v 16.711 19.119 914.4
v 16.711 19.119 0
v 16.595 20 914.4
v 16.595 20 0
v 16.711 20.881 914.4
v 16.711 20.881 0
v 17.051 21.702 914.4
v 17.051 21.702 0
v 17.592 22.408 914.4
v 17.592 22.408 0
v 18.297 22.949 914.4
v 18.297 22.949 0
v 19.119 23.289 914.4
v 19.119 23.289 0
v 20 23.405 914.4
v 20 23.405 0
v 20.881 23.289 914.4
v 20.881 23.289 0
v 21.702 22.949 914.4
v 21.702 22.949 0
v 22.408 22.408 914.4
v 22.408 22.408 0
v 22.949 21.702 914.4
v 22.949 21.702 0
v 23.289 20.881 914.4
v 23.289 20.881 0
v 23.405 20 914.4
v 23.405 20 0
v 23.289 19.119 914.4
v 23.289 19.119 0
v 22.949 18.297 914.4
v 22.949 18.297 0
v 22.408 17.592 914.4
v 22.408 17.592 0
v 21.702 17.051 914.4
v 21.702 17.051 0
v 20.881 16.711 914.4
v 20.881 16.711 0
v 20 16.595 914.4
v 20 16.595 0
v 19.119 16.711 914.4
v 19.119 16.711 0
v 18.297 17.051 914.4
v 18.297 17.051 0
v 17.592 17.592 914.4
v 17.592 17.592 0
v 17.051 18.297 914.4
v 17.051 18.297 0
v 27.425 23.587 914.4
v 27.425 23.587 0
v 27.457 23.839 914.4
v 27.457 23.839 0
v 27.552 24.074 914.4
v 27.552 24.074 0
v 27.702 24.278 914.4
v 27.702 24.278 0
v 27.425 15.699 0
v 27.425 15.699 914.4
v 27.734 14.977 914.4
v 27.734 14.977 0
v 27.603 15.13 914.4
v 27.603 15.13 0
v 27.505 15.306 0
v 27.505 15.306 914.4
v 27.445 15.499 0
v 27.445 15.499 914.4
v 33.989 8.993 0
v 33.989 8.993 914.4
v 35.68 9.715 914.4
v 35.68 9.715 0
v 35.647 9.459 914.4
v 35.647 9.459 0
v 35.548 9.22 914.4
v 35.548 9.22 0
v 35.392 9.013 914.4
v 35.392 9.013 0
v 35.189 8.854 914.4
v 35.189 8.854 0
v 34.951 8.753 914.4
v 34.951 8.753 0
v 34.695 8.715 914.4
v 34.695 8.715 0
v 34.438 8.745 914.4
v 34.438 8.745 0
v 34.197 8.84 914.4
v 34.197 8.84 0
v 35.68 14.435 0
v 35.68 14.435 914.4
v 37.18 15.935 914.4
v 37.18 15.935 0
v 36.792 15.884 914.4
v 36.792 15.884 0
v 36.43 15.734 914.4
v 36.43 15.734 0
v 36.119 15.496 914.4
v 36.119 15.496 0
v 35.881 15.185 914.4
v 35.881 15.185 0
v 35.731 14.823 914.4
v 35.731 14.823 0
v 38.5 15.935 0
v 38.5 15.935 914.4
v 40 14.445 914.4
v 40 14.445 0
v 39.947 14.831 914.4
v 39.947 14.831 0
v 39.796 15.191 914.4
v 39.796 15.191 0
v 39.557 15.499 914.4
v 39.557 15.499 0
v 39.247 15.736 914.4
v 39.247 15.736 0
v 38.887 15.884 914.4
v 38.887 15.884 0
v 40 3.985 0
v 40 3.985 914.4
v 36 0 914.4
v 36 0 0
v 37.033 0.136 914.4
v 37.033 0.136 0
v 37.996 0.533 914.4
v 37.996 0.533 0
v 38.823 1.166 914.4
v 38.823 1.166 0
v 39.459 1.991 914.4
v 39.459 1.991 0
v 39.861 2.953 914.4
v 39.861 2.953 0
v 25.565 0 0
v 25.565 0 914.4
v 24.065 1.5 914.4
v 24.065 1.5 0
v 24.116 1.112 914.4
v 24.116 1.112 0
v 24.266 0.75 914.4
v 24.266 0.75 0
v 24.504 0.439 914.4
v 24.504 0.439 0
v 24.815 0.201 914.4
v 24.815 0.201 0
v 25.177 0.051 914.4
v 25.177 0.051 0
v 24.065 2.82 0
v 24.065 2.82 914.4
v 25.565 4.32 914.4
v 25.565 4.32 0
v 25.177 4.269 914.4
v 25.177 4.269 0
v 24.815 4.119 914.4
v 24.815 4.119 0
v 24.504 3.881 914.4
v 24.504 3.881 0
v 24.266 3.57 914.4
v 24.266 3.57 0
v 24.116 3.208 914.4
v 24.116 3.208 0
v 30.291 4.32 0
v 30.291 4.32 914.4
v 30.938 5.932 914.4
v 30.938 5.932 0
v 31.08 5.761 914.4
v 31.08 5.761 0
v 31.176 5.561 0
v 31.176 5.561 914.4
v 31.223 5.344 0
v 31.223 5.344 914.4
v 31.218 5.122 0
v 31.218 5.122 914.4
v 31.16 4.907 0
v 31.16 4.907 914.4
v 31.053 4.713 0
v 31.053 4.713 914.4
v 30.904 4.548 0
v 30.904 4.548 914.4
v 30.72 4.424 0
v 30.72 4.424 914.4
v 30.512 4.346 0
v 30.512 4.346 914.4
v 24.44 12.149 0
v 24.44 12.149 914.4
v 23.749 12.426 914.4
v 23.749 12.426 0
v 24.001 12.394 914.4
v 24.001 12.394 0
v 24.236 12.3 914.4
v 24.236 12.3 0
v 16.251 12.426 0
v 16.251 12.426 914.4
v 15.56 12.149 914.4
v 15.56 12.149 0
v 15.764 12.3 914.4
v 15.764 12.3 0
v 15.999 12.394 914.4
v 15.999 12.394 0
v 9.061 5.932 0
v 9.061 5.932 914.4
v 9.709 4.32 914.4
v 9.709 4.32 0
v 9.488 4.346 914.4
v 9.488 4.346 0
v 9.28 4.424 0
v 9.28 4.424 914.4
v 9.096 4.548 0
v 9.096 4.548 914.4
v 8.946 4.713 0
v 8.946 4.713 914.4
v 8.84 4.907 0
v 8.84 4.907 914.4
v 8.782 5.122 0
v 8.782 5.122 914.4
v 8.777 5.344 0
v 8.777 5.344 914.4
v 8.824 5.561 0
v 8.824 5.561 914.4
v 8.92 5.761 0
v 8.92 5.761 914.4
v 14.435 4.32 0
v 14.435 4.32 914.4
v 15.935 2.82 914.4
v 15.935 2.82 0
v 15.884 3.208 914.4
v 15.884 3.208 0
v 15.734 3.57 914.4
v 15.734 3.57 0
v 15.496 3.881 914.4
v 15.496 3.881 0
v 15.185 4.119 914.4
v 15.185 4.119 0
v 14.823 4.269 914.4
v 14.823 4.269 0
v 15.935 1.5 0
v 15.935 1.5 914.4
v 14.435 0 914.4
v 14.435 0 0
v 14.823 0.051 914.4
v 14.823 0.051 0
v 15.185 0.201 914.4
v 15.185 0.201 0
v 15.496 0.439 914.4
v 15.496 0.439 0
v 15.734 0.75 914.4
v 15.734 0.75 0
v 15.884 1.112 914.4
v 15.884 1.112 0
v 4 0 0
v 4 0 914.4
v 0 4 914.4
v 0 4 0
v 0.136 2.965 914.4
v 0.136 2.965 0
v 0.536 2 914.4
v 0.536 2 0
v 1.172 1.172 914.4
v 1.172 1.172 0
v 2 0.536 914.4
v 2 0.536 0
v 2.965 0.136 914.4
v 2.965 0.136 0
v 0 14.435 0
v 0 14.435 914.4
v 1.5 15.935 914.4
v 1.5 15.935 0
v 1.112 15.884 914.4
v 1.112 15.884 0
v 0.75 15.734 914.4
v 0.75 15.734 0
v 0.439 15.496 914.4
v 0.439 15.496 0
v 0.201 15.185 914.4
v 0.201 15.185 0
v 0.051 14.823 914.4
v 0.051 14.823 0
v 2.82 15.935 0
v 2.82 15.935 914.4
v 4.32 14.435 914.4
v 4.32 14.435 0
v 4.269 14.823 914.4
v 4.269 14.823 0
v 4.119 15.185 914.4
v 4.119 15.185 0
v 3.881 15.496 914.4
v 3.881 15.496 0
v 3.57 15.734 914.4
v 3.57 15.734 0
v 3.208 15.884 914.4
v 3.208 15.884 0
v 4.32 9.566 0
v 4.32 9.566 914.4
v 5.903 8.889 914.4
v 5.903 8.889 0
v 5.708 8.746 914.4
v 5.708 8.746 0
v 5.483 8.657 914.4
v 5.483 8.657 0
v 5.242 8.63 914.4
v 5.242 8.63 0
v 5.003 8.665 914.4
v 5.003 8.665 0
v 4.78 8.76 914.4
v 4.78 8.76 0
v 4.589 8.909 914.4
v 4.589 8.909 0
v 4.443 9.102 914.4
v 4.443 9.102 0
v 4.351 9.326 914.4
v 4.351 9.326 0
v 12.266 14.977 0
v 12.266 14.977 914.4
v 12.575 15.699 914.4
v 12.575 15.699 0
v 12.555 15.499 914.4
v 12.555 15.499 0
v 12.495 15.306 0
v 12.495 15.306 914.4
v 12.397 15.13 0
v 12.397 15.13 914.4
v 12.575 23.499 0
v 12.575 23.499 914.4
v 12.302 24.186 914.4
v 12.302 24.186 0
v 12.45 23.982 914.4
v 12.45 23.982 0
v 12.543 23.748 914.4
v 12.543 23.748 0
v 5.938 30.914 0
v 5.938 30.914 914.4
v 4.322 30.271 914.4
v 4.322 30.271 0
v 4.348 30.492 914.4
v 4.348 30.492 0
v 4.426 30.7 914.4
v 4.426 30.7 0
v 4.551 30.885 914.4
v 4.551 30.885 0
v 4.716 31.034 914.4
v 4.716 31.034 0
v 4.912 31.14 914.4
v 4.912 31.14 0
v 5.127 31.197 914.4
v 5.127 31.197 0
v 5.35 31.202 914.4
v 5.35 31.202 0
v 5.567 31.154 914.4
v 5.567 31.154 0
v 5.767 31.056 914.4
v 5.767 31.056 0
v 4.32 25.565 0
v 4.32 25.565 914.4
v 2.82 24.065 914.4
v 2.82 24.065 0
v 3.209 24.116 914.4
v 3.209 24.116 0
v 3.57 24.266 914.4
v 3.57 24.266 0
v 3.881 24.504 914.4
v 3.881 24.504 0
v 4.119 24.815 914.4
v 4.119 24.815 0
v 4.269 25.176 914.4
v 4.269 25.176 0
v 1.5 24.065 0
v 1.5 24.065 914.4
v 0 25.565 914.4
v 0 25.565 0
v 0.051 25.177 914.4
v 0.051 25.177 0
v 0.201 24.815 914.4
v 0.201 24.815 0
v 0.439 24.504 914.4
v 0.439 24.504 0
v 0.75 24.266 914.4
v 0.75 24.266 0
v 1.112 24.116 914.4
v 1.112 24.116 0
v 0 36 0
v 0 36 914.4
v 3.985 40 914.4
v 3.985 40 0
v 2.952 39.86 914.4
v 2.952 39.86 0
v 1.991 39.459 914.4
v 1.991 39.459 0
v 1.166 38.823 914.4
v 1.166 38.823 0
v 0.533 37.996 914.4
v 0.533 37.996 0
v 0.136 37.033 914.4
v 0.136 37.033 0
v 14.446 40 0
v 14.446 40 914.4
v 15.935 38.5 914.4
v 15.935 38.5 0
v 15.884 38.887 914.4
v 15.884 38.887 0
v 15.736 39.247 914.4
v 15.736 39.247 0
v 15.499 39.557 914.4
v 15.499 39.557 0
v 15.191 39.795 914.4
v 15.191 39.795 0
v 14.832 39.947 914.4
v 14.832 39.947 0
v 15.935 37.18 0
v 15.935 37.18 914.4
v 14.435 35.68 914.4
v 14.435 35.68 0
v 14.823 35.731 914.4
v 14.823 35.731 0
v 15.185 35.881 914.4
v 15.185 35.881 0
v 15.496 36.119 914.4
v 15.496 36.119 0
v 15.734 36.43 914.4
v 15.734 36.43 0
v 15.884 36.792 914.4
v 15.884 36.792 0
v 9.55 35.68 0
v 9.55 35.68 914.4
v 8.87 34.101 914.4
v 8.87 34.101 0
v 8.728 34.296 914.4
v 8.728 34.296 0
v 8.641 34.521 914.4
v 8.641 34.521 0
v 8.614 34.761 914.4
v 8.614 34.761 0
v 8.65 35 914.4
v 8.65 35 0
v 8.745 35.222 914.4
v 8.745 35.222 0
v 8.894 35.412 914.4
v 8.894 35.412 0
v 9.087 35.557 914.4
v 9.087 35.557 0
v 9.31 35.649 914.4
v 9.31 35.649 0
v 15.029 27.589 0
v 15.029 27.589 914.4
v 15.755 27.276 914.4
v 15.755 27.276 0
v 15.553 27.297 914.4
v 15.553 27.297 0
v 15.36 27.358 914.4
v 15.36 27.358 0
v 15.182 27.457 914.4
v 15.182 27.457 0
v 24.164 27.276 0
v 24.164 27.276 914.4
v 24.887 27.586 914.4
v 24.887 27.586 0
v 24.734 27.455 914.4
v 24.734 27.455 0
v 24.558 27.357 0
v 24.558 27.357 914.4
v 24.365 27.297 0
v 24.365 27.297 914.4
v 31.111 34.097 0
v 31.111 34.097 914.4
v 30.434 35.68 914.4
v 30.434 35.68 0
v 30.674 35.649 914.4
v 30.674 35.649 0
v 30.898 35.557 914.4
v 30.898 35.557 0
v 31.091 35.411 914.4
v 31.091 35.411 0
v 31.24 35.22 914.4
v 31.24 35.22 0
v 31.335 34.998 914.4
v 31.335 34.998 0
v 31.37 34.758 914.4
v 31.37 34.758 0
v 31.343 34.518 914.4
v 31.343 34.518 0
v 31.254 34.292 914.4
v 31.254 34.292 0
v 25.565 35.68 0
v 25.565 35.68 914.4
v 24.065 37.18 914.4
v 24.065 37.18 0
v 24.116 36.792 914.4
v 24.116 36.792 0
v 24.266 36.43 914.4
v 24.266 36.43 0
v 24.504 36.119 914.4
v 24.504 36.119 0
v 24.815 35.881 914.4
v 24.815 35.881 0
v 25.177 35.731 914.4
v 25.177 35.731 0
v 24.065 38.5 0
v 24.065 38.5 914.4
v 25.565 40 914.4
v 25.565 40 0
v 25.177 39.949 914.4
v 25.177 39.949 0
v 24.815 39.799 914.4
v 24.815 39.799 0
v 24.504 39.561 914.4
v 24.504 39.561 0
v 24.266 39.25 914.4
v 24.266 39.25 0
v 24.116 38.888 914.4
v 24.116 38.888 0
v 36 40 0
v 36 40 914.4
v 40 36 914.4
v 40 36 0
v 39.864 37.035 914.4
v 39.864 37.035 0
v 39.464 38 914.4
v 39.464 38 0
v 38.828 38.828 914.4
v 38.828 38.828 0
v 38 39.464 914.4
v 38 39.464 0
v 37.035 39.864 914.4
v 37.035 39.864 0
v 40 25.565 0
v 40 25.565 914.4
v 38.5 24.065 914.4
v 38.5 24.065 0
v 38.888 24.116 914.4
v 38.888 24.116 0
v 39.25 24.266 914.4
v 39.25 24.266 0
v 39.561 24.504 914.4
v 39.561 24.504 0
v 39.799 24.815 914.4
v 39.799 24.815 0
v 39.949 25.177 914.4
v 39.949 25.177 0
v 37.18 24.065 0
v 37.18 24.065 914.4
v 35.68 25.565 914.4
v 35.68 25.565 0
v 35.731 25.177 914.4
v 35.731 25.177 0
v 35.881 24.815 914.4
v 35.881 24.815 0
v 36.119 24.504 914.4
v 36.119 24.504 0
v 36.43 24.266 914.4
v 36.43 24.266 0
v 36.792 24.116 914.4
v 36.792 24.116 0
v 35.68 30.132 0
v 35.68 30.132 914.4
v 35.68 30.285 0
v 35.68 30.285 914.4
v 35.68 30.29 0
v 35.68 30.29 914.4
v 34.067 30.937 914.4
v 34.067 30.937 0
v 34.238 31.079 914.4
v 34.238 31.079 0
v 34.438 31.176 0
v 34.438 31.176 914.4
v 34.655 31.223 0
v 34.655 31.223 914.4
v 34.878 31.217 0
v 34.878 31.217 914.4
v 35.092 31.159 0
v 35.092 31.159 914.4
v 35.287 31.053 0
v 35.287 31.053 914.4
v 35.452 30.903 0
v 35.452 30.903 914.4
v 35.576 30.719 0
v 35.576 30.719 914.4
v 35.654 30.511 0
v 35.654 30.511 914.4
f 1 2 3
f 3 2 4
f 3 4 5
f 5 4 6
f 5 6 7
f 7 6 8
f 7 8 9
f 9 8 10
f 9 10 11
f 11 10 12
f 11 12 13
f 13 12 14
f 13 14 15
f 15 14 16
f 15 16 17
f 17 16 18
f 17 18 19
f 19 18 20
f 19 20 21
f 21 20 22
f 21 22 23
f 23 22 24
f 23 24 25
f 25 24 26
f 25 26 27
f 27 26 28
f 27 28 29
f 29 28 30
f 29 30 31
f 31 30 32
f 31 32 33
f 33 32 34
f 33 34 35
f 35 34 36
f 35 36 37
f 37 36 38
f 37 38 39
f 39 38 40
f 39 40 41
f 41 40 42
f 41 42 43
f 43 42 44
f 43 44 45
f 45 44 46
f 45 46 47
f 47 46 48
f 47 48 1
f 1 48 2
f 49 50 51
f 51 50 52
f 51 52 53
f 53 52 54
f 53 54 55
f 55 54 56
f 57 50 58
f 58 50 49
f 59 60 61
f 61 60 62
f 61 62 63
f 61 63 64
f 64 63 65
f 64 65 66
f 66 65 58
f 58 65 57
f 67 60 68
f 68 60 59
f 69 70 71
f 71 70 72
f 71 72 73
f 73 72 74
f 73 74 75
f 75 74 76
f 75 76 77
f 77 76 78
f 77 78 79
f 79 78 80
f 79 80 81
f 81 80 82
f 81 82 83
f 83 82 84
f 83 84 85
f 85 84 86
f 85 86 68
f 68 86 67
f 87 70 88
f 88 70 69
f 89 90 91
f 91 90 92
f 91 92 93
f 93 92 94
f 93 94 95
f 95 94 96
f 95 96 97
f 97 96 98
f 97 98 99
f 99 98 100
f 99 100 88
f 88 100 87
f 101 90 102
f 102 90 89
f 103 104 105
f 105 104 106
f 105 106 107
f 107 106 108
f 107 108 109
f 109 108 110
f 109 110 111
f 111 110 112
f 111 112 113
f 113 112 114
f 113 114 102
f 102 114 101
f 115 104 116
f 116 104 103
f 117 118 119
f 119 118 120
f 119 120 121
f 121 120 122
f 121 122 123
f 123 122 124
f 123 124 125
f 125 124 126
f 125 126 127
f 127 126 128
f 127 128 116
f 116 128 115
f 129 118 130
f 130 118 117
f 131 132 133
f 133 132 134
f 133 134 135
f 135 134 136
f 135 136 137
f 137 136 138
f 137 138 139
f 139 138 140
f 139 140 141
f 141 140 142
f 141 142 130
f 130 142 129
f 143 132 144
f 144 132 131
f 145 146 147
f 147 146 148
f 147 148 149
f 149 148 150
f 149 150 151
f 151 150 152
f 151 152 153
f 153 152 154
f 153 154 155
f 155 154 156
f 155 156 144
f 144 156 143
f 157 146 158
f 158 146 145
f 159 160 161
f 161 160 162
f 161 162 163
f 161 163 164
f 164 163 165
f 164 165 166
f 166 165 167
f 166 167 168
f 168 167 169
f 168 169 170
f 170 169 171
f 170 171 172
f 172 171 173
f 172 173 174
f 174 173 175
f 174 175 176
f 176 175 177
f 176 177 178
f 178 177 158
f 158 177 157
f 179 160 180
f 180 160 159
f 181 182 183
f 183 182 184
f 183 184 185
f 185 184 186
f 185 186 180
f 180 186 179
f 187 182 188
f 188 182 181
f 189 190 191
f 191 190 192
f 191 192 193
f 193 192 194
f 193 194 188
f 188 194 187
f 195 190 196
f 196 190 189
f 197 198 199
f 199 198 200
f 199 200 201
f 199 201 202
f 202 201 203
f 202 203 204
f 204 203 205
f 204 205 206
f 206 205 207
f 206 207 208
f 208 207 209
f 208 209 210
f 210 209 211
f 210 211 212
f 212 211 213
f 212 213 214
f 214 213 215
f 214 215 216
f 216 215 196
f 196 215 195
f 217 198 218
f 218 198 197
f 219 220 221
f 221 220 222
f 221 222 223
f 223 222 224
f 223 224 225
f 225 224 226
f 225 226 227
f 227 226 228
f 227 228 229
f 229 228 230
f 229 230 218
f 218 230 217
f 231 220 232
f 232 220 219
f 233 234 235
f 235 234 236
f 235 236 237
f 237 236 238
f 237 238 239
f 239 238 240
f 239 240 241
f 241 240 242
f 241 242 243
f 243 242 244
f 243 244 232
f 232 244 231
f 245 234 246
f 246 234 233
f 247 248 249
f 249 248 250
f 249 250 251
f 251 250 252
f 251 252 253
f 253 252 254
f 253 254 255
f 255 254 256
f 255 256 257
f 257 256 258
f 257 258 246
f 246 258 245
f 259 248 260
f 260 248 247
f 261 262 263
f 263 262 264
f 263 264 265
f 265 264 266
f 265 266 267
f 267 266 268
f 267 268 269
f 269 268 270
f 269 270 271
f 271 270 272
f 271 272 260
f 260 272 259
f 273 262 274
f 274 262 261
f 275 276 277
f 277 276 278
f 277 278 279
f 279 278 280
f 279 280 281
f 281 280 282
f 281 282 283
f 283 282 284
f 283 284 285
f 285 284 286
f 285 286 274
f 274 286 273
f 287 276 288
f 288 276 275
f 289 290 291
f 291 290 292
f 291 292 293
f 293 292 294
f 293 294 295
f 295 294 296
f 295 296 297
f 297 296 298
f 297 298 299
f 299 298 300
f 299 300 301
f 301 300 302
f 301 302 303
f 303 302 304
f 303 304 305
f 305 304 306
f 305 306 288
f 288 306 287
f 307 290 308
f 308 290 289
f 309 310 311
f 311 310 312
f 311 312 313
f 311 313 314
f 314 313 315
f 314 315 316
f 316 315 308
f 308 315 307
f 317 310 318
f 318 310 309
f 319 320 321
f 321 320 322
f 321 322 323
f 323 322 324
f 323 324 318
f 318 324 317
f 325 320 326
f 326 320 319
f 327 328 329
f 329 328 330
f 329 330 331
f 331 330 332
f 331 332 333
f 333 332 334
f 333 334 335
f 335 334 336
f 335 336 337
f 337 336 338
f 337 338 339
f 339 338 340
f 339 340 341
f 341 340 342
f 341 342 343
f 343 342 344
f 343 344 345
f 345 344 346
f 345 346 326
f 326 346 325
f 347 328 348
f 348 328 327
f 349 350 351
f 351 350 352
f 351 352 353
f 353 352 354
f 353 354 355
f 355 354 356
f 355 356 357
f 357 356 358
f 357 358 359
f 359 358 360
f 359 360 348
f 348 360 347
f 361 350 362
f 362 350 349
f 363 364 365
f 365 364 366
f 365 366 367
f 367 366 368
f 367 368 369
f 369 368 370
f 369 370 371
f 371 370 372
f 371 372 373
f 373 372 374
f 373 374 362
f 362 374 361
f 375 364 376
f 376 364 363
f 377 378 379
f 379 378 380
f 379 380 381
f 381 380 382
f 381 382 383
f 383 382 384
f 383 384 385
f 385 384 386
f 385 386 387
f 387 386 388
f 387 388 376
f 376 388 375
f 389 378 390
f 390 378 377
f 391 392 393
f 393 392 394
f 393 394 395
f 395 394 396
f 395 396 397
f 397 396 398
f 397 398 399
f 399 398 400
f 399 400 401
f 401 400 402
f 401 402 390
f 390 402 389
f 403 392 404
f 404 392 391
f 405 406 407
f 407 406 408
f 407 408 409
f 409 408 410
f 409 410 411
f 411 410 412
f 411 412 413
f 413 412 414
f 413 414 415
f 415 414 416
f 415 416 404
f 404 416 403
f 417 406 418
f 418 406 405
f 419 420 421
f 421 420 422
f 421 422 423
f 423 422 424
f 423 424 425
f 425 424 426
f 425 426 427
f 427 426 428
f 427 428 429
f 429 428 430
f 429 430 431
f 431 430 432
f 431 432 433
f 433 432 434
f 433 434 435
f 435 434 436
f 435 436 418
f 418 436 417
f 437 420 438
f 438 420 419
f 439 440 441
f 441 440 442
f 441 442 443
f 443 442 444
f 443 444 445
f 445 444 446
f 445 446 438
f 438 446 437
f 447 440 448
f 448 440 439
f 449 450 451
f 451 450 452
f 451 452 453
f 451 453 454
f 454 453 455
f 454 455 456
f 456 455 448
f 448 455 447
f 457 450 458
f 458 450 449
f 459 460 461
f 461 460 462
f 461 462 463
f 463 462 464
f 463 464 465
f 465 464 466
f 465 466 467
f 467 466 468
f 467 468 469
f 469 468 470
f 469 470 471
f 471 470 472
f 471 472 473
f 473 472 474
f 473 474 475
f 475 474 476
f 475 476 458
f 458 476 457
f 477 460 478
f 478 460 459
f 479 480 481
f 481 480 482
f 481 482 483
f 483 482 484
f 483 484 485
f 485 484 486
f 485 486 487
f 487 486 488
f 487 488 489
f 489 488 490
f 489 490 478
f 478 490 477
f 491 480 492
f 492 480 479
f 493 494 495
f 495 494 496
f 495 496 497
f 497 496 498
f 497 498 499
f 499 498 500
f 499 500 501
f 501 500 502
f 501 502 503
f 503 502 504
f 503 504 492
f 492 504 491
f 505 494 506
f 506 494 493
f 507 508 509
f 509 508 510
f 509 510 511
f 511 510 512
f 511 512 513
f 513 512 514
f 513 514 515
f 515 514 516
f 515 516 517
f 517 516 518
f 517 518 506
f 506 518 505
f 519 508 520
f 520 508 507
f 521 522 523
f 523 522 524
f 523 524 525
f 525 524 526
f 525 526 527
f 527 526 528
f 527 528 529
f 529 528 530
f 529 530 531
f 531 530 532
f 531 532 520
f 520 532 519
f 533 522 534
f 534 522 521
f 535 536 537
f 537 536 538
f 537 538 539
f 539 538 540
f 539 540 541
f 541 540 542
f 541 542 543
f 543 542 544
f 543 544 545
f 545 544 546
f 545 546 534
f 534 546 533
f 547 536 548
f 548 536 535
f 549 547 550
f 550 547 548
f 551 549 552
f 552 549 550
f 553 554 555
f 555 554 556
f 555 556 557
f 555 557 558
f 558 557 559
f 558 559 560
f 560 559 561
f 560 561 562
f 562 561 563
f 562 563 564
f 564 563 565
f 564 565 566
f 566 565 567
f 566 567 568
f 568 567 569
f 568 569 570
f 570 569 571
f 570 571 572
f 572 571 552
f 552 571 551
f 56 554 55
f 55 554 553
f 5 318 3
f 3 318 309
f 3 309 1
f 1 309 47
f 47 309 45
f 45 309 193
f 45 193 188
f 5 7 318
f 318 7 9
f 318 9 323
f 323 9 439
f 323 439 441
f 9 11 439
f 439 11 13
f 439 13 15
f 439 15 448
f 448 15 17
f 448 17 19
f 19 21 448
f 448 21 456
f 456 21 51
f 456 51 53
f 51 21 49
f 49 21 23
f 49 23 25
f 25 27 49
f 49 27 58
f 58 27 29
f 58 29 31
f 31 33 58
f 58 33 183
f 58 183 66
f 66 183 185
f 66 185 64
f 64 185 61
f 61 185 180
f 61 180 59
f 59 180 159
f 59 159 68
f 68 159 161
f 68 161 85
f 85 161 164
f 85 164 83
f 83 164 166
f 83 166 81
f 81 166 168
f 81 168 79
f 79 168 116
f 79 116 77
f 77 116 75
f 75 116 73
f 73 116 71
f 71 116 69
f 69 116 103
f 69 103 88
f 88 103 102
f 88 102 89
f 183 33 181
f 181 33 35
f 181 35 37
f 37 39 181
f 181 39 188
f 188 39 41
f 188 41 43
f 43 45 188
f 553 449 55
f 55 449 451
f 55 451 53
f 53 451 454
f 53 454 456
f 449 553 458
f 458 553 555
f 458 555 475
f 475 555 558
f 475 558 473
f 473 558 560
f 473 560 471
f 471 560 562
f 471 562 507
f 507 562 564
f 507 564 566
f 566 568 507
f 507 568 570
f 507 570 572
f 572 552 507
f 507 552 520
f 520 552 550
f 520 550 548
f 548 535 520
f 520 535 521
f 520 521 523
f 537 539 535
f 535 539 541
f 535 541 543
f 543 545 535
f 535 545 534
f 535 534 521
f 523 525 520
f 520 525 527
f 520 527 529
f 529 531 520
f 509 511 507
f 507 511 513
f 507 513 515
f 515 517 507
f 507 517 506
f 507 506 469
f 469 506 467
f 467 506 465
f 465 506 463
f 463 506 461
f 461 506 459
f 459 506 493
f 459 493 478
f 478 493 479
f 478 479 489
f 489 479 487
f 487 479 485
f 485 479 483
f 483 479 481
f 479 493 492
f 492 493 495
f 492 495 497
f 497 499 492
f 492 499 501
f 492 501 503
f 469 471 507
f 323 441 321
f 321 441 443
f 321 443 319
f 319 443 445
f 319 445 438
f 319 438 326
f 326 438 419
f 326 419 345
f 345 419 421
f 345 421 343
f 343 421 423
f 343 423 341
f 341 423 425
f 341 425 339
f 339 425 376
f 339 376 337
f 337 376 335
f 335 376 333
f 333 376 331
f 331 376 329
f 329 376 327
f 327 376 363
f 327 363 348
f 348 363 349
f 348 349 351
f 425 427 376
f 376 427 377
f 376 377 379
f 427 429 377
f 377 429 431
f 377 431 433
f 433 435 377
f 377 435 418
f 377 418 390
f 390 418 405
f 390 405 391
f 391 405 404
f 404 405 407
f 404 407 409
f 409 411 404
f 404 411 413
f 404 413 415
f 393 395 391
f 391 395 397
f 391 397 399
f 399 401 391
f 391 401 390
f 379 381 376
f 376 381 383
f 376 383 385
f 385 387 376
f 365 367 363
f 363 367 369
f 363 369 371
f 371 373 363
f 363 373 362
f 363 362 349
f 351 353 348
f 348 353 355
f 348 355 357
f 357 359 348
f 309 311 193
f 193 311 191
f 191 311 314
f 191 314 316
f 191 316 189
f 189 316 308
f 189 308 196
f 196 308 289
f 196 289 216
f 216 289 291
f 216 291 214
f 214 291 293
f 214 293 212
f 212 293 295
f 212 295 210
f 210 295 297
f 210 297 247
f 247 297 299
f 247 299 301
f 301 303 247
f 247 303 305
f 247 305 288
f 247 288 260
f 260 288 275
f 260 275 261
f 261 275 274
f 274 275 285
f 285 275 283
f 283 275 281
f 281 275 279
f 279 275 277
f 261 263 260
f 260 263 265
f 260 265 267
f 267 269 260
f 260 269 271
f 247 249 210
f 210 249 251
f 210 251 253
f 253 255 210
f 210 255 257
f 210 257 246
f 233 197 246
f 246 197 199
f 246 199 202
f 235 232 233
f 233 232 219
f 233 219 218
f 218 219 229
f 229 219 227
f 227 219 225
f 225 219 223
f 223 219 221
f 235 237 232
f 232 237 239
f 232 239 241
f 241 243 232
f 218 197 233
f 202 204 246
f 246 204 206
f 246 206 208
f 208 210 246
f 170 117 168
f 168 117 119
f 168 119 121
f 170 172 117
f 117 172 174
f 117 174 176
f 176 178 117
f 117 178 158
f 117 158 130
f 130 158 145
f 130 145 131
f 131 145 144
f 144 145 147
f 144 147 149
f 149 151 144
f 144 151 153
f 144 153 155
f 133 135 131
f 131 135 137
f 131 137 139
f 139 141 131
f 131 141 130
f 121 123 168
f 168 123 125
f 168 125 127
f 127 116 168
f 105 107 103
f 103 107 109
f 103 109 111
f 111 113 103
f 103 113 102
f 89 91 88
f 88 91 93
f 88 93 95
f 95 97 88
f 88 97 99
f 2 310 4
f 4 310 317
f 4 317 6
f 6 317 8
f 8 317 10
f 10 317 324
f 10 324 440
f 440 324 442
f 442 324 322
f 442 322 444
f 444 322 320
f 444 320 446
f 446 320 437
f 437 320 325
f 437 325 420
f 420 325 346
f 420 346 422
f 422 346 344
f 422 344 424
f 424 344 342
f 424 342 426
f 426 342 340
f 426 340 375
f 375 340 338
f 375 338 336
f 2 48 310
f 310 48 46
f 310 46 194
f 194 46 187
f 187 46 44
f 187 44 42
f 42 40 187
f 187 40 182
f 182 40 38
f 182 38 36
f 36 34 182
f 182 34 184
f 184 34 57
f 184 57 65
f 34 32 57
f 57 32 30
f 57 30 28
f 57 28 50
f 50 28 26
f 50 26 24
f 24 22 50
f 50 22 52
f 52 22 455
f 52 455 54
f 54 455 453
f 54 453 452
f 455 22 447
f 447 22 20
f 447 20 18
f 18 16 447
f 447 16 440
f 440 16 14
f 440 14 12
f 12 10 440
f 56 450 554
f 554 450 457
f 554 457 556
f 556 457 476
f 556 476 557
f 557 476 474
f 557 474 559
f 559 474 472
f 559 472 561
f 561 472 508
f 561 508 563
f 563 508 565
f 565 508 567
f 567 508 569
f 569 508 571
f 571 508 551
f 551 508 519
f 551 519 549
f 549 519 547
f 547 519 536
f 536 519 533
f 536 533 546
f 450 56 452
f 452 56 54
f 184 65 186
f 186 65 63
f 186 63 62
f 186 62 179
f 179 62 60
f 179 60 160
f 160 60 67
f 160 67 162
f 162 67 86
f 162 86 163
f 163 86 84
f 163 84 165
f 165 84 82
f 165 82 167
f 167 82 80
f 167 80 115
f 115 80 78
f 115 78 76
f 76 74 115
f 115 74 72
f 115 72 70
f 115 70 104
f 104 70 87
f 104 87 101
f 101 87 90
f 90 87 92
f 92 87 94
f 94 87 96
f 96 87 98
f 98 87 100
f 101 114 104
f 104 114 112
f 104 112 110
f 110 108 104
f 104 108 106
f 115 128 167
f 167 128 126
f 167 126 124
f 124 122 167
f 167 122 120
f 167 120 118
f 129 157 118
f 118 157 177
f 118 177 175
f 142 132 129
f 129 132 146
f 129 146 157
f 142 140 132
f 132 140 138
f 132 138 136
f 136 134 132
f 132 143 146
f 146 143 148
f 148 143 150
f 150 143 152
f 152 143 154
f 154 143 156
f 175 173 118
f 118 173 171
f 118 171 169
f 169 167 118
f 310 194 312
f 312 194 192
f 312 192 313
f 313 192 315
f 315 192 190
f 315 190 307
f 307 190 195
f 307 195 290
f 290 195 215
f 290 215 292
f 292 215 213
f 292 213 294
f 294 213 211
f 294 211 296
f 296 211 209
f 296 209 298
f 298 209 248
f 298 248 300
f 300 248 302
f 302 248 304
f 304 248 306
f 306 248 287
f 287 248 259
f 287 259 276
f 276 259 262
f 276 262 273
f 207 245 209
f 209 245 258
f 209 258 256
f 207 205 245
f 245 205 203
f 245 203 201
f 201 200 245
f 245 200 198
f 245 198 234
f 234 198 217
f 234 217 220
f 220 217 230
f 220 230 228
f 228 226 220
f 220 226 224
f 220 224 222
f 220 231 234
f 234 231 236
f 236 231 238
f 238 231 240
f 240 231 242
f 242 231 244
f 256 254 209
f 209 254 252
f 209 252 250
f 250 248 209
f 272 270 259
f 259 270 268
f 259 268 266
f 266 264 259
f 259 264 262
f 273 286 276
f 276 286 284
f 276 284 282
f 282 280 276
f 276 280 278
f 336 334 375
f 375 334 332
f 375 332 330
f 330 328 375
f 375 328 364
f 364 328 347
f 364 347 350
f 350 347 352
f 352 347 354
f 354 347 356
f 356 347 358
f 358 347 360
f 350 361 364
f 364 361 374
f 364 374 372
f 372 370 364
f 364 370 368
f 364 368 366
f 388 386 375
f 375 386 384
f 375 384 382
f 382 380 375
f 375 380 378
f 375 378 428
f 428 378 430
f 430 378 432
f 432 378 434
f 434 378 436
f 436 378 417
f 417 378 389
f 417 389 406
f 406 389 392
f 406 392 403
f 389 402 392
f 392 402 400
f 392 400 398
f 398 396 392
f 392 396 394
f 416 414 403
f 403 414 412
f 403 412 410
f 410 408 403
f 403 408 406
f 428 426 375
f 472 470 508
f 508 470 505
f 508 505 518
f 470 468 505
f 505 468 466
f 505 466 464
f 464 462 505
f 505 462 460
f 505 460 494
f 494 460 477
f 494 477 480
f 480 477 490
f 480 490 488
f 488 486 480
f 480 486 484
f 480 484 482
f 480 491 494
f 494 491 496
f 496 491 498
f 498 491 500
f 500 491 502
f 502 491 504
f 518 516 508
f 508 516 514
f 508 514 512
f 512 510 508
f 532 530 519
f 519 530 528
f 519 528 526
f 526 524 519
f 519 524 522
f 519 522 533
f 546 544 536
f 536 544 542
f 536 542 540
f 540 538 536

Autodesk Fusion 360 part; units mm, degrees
sketch "Sketch1" plane through (0, 0, 0) normal (0, 0, 1) x (1, 0, 0)
  line L0 (4, 0) -> (14.435, 0)
  line L1 (40, 0) -> (40, 36)
  line L2 (36, 40) -> (0, 40)
  line L3 (0, 40) -> (0, 4)
  line L4 (0, 0) -> (0, 20)
  line L5 (0, 40) -> (20, 40)
  circle A0 centre (20, 20) radius 3.405
  line L6 (40, 40) -> (24.065, 40)
  line L7 (40, 40) -> (25.565, 40)
  line L8 (40, 40) -> (40, 25.565)
  line L9 (38.5, 24.065) -> (37.18, 24.065)
  line L10 (24.065, 38.5) -> (24.065, 37.18)
  line L11 (25.565, 35.68) -> (30.4344, 35.68)
  line L12 (35.68, 25.565) -> (35.68, 30.2904)
  line L13 (20, 20) -> (20, 40)
  line L14 (20, 20) -> (0, 20)
  line L15 (20, 20) -> (20, 0)
  line L16 (20, 20) -> (40, 20)
  line L17 (14.435, 35.68) -> (9.5498, 35.68)
  line L18 (15.935, 38.5) -> (15.935, 37.18)
  line L19 (4, 40) -> (14.435, 40)
  line L20 (0, 36) -> (0, 25.565)
  line L21 (1.5, 24.065) -> (2.8205, 24.065)
  line L22 (4.3205, 25.5645) -> (4.3219, 30.271)
  line L23 (25.565, 4.32) -> (1890698.4728, 3)
  line L24 (24.065, 1.5) -> (24.065, 2.82)
  line L25 (36, 0) -> (25.565, 0)
  line L26 (40, 4) -> (40, 14.435)
  line L27 (38.5, 15.935) -> (37.18, 15.935)
  line L28 (35.68, 14.435) -> (35.68, 9.7153)
  line L29 (14.435, 4.32) -> (9.7085, 4.32)
  line L30 (15.935, 1.5) -> (15.935, 2.82)
  line L31 (0, 0) -> (15.935, 0)
  line L32 (1.5, 15.935) -> (2.82, 15.935)
  line L33 (4.32, 14.435) -> (4.32, 9.5656)
  line L34 (0, 14.435) -> (0, 0)
  line L35 (0, 0) -> (15.935, 0)
  line L36 (5.9379, 30.9139) -> (12.3015, 24.1858)
  line L37 (8.8698, 34.1008) -> (15.0285, 27.5893)
  line L38 (30.9385, 5.9323) -> (24.4402, 12.1491)
  line L39 (33.9887, 8.9927) -> (27.7337, 14.9768)
  line L40 (5.903, 8.8892) -> (12.2663, 14.9767)
  line L41 (9.0615, 5.9323) -> (15.5598, 12.1491)
  line L42 (31.1111, 34.0973) -> (24.8873, 27.5855)
  line L43 (33.957, 30.8226) -> (27.7021, 24.2782)
  line L44 (27.425, 23.5872) -> (27.425, 15.6993)
  line L45 (16.2511, 12.4265) -> (23.7489, 12.4265)
  line L46 (12.575, 15.6993) -> (12.575, 23.4986)
  line L47 (15.7551, 27.2765) -> (24.1644, 27.2765)
  line L48 (35.68, 30.1316) -> (35.68, 30.2853)
  line L49 (34.0667, 30.9373) -> (34.0632, 30.9337)
  arc A1 (33.9887, 8.9927) -> (35.68, 9.7153) centre (34.68, 9.7153) ccw
  line L50 (35.68, 7.3747) -> (35.68, 9.7153)
  arc A2 (27.7021, 24.2782) -> (27.425, 23.5872) centre (28.425, 23.5872) ccw
  arc A3 (35.68, 30.2904) -> (34.0667, 30.9373) centre (34.7436, 30.2904) ccw
  arc A4 (5.9379, 30.9139) -> (4.3219, 30.271) centre (5.2579, 30.2707) ccw
  arc A5 (12.575, 23.4986) -> (12.3015, 24.1858) centre (11.575, 23.4986) ccw
  arc A6 (12.2663, 14.9767) -> (12.575, 15.6993) centre (11.575, 15.6993) ccw
  arc A7 (4.32, 9.5656) -> (5.903, 8.8892) centre (5.256, 9.5656) ccw
  arc A8 (9.0615, 5.9323) -> (9.7085, 4.32) centre (9.7085, 5.256) ccw
  arc A9 (30.2914, 4.32) -> (30.9385, 5.9323) centre (30.2914, 5.256) ccw
  arc A10 (24.4402, 12.1491) -> (23.7489, 12.4265) centre (23.7489, 11.4265) ccw
  arc A11 (16.2511, 12.4265) -> (15.5598, 12.1491) centre (16.2511, 11.4265) ccw
  arc A12 (27.425, 15.6993) -> (27.7337, 14.9768) centre (28.425, 15.6993) ccw
  arc A13 (24.1644, 27.2765) -> (24.8873, 27.5855) centre (24.1644, 28.2765) ccw
  arc A14 (15.0285, 27.5893) -> (15.7551, 27.2765) centre (15.7551, 28.2765) ccw
  arc A15 (37.18, 15.935) -> (35.68, 14.435) centre (37.18, 14.435) ccw
  arc A16 (40, 14.435) -> (38.5, 15.935) centre (38.5, 14.435) ccw
  arc A17 (35.68, 25.565) -> (37.18, 24.065) centre (37.18, 25.565) ccw
  arc A18 (38.5, 24.065) -> (40, 25.565) centre (38.5, 25.565) ccw
  arc A19 (25.565, 40) -> (24.065, 38.5) centre (25.565, 38.5) ccw
  arc A20 (24.065, 37.18) -> (25.565, 35.68) centre (25.565, 37.18) ccw
  arc A21 (14.435, 35.68) -> (15.935, 37.18) centre (14.435, 37.18) ccw
  arc A22 (15.935, 38.5) -> (14.435, 40) centre (14.435, 38.5) ccw
  arc A23 (2.8205, 24.065) -> (4.3205, 25.5645) centre (2.8205, 25.565) ccw
  arc A24 (0, 25.565) -> (1.5, 24.065) centre (1.5, 25.565) ccw
  arc A25 (4.32, 14.435) -> (2.82, 15.935) centre (2.82, 14.435) ccw
  arc A26 (1.5, 15.935) -> (0, 14.435) centre (1.5, 14.435) ccw
  arc A27 (15.935, 2.82) -> (14.435, 4.32) centre (14.435, 2.82) ccw
  arc A28 (1890698.4728, 0) -> (1890698.4728, 3) centre (1890698.4728, 1.5) ccw
  arc A29 (24.065, 1.5) -> (25.565, 0) centre (25.565, 1.5) ccw
  arc A30 (14.435, 0) -> (15.935, 1.5) centre (14.435, 1.5) ccw
  arc A31 (25.565, 4.32) -> (24.065, 2.82) centre (25.565, 2.82) ccw
  arc A32 (4, 40) -> (0, 36) centre (4, 36) ccw
  arc A33 (0, 4) -> (4, 0) centre (4, 4) ccw
  arc A34 (36, 0) -> (40, 4) centre (36, 4) ccw
  arc A35 (40, 36) -> (36, 40) centre (36, 36) ccw
  arc A36 (9.5498, 35.68) -> (8.8698, 34.1008) centre (9.5498, 34.744) ccw
  arc A37 (31.1111, 34.0973) -> (30.4344, 35.68) centre (30.4344, 34.744) ccw
  line L51 (40, 25.1972) -> (40, 36)
  line L52 (33.957, 30.8226) -> (34.0632, 30.9337)
  point P0 (20, 20)
  point P1 (40, 24.065)
  point P2 (35.68, 24.065)
  point P3 (24.065, 35.68)
  point P4 (35.68, 32.6253)
  point P5 (35.68, 7.3747)
  dimension "d1" = 40
  dimension "d2" = 40
  dimension "d8" = 15.935
  dimension "d9" = 15.935
  dimension "d10" = 4.32
  dimension "d11" = 4.32
  dimension "d16" = 90
  dimension "d17" = 90
  dimension "d22" = 4.32
  dimension "d23" = 4.32
  dimension "d24" = 4.32
  dimension "d25" = 4.32
  dimension "d26" = 8.13
  dimension "d27" = 4.32
  dimension "d28" = 14.85
  dimension "d29" = 14.85
  dimension "d30" = 7.425
  dimension "d31" = 25.2506
  dimension "d32" = 2.34
  dimension "d33" = 2.34
  dimension "d35" = 1
  dimension "d36" = 20.57
  dimension "d37" = 1
  dimension "d38" = 7.9779
  dimension "d39" = 0.9364
  dimension "d40" = 0.936
  dimension "d41" = 1
  dimension "d42" = 1
  dimension "d43" = 0.936
  dimension "d44" = 0.936
  dimension "d45" = 0.936
  dimension "d46" = 1
  dimension "d47" = 1
  dimension "d48" = 1
  dimension "d49" = 1
  dimension "d50" = 1
  dimension "d51" = 1.5
  dimension "d52" = 1.5
  dimension "d53" = 1.5
  dimension "d54" = 1.5
  dimension "d55" = 1.5
  dimension "d56" = 1.5
  dimension "d57" = 1.5
  dimension "d58" = 1.5
  dimension "d59" = 4
  dimension "d60" = 4
  dimension "d61" = 0.936
  dimension "d62" = 0.936
extrude "Extrude1" add sketch "Sketch1" along normal blind 914.4 contours L0 L3 L4 A0 L14 L15 L29 L30 L31 L32 L33 L34 L35 L40 L41 L45 L46 A6 A7 A8 A11 A25 A26 A27 A30 A33 | L2 L3 L5 A0 L13 L14 L17 L18 L19 L20 L21 L22 L36 L37 L46 L47 A4 A5 A14 A21 A22 A23 A24 A32 A36 | L1 L2 A0 L6 L7 L8 L9 L10 L11 L12 L13 L16 L42 L43 L44 L47 L48 L49 A2 A3 A13 A17 A18 A19 A20 A35 A37 L51 L52 | L1 A0 L15 L16 L23 L26 L27 L28 L38 L39 L44 L45 A1 A9 A10 A12 A15 A16 | L1 L23 L24 L25 L26 A29 A31 A34
